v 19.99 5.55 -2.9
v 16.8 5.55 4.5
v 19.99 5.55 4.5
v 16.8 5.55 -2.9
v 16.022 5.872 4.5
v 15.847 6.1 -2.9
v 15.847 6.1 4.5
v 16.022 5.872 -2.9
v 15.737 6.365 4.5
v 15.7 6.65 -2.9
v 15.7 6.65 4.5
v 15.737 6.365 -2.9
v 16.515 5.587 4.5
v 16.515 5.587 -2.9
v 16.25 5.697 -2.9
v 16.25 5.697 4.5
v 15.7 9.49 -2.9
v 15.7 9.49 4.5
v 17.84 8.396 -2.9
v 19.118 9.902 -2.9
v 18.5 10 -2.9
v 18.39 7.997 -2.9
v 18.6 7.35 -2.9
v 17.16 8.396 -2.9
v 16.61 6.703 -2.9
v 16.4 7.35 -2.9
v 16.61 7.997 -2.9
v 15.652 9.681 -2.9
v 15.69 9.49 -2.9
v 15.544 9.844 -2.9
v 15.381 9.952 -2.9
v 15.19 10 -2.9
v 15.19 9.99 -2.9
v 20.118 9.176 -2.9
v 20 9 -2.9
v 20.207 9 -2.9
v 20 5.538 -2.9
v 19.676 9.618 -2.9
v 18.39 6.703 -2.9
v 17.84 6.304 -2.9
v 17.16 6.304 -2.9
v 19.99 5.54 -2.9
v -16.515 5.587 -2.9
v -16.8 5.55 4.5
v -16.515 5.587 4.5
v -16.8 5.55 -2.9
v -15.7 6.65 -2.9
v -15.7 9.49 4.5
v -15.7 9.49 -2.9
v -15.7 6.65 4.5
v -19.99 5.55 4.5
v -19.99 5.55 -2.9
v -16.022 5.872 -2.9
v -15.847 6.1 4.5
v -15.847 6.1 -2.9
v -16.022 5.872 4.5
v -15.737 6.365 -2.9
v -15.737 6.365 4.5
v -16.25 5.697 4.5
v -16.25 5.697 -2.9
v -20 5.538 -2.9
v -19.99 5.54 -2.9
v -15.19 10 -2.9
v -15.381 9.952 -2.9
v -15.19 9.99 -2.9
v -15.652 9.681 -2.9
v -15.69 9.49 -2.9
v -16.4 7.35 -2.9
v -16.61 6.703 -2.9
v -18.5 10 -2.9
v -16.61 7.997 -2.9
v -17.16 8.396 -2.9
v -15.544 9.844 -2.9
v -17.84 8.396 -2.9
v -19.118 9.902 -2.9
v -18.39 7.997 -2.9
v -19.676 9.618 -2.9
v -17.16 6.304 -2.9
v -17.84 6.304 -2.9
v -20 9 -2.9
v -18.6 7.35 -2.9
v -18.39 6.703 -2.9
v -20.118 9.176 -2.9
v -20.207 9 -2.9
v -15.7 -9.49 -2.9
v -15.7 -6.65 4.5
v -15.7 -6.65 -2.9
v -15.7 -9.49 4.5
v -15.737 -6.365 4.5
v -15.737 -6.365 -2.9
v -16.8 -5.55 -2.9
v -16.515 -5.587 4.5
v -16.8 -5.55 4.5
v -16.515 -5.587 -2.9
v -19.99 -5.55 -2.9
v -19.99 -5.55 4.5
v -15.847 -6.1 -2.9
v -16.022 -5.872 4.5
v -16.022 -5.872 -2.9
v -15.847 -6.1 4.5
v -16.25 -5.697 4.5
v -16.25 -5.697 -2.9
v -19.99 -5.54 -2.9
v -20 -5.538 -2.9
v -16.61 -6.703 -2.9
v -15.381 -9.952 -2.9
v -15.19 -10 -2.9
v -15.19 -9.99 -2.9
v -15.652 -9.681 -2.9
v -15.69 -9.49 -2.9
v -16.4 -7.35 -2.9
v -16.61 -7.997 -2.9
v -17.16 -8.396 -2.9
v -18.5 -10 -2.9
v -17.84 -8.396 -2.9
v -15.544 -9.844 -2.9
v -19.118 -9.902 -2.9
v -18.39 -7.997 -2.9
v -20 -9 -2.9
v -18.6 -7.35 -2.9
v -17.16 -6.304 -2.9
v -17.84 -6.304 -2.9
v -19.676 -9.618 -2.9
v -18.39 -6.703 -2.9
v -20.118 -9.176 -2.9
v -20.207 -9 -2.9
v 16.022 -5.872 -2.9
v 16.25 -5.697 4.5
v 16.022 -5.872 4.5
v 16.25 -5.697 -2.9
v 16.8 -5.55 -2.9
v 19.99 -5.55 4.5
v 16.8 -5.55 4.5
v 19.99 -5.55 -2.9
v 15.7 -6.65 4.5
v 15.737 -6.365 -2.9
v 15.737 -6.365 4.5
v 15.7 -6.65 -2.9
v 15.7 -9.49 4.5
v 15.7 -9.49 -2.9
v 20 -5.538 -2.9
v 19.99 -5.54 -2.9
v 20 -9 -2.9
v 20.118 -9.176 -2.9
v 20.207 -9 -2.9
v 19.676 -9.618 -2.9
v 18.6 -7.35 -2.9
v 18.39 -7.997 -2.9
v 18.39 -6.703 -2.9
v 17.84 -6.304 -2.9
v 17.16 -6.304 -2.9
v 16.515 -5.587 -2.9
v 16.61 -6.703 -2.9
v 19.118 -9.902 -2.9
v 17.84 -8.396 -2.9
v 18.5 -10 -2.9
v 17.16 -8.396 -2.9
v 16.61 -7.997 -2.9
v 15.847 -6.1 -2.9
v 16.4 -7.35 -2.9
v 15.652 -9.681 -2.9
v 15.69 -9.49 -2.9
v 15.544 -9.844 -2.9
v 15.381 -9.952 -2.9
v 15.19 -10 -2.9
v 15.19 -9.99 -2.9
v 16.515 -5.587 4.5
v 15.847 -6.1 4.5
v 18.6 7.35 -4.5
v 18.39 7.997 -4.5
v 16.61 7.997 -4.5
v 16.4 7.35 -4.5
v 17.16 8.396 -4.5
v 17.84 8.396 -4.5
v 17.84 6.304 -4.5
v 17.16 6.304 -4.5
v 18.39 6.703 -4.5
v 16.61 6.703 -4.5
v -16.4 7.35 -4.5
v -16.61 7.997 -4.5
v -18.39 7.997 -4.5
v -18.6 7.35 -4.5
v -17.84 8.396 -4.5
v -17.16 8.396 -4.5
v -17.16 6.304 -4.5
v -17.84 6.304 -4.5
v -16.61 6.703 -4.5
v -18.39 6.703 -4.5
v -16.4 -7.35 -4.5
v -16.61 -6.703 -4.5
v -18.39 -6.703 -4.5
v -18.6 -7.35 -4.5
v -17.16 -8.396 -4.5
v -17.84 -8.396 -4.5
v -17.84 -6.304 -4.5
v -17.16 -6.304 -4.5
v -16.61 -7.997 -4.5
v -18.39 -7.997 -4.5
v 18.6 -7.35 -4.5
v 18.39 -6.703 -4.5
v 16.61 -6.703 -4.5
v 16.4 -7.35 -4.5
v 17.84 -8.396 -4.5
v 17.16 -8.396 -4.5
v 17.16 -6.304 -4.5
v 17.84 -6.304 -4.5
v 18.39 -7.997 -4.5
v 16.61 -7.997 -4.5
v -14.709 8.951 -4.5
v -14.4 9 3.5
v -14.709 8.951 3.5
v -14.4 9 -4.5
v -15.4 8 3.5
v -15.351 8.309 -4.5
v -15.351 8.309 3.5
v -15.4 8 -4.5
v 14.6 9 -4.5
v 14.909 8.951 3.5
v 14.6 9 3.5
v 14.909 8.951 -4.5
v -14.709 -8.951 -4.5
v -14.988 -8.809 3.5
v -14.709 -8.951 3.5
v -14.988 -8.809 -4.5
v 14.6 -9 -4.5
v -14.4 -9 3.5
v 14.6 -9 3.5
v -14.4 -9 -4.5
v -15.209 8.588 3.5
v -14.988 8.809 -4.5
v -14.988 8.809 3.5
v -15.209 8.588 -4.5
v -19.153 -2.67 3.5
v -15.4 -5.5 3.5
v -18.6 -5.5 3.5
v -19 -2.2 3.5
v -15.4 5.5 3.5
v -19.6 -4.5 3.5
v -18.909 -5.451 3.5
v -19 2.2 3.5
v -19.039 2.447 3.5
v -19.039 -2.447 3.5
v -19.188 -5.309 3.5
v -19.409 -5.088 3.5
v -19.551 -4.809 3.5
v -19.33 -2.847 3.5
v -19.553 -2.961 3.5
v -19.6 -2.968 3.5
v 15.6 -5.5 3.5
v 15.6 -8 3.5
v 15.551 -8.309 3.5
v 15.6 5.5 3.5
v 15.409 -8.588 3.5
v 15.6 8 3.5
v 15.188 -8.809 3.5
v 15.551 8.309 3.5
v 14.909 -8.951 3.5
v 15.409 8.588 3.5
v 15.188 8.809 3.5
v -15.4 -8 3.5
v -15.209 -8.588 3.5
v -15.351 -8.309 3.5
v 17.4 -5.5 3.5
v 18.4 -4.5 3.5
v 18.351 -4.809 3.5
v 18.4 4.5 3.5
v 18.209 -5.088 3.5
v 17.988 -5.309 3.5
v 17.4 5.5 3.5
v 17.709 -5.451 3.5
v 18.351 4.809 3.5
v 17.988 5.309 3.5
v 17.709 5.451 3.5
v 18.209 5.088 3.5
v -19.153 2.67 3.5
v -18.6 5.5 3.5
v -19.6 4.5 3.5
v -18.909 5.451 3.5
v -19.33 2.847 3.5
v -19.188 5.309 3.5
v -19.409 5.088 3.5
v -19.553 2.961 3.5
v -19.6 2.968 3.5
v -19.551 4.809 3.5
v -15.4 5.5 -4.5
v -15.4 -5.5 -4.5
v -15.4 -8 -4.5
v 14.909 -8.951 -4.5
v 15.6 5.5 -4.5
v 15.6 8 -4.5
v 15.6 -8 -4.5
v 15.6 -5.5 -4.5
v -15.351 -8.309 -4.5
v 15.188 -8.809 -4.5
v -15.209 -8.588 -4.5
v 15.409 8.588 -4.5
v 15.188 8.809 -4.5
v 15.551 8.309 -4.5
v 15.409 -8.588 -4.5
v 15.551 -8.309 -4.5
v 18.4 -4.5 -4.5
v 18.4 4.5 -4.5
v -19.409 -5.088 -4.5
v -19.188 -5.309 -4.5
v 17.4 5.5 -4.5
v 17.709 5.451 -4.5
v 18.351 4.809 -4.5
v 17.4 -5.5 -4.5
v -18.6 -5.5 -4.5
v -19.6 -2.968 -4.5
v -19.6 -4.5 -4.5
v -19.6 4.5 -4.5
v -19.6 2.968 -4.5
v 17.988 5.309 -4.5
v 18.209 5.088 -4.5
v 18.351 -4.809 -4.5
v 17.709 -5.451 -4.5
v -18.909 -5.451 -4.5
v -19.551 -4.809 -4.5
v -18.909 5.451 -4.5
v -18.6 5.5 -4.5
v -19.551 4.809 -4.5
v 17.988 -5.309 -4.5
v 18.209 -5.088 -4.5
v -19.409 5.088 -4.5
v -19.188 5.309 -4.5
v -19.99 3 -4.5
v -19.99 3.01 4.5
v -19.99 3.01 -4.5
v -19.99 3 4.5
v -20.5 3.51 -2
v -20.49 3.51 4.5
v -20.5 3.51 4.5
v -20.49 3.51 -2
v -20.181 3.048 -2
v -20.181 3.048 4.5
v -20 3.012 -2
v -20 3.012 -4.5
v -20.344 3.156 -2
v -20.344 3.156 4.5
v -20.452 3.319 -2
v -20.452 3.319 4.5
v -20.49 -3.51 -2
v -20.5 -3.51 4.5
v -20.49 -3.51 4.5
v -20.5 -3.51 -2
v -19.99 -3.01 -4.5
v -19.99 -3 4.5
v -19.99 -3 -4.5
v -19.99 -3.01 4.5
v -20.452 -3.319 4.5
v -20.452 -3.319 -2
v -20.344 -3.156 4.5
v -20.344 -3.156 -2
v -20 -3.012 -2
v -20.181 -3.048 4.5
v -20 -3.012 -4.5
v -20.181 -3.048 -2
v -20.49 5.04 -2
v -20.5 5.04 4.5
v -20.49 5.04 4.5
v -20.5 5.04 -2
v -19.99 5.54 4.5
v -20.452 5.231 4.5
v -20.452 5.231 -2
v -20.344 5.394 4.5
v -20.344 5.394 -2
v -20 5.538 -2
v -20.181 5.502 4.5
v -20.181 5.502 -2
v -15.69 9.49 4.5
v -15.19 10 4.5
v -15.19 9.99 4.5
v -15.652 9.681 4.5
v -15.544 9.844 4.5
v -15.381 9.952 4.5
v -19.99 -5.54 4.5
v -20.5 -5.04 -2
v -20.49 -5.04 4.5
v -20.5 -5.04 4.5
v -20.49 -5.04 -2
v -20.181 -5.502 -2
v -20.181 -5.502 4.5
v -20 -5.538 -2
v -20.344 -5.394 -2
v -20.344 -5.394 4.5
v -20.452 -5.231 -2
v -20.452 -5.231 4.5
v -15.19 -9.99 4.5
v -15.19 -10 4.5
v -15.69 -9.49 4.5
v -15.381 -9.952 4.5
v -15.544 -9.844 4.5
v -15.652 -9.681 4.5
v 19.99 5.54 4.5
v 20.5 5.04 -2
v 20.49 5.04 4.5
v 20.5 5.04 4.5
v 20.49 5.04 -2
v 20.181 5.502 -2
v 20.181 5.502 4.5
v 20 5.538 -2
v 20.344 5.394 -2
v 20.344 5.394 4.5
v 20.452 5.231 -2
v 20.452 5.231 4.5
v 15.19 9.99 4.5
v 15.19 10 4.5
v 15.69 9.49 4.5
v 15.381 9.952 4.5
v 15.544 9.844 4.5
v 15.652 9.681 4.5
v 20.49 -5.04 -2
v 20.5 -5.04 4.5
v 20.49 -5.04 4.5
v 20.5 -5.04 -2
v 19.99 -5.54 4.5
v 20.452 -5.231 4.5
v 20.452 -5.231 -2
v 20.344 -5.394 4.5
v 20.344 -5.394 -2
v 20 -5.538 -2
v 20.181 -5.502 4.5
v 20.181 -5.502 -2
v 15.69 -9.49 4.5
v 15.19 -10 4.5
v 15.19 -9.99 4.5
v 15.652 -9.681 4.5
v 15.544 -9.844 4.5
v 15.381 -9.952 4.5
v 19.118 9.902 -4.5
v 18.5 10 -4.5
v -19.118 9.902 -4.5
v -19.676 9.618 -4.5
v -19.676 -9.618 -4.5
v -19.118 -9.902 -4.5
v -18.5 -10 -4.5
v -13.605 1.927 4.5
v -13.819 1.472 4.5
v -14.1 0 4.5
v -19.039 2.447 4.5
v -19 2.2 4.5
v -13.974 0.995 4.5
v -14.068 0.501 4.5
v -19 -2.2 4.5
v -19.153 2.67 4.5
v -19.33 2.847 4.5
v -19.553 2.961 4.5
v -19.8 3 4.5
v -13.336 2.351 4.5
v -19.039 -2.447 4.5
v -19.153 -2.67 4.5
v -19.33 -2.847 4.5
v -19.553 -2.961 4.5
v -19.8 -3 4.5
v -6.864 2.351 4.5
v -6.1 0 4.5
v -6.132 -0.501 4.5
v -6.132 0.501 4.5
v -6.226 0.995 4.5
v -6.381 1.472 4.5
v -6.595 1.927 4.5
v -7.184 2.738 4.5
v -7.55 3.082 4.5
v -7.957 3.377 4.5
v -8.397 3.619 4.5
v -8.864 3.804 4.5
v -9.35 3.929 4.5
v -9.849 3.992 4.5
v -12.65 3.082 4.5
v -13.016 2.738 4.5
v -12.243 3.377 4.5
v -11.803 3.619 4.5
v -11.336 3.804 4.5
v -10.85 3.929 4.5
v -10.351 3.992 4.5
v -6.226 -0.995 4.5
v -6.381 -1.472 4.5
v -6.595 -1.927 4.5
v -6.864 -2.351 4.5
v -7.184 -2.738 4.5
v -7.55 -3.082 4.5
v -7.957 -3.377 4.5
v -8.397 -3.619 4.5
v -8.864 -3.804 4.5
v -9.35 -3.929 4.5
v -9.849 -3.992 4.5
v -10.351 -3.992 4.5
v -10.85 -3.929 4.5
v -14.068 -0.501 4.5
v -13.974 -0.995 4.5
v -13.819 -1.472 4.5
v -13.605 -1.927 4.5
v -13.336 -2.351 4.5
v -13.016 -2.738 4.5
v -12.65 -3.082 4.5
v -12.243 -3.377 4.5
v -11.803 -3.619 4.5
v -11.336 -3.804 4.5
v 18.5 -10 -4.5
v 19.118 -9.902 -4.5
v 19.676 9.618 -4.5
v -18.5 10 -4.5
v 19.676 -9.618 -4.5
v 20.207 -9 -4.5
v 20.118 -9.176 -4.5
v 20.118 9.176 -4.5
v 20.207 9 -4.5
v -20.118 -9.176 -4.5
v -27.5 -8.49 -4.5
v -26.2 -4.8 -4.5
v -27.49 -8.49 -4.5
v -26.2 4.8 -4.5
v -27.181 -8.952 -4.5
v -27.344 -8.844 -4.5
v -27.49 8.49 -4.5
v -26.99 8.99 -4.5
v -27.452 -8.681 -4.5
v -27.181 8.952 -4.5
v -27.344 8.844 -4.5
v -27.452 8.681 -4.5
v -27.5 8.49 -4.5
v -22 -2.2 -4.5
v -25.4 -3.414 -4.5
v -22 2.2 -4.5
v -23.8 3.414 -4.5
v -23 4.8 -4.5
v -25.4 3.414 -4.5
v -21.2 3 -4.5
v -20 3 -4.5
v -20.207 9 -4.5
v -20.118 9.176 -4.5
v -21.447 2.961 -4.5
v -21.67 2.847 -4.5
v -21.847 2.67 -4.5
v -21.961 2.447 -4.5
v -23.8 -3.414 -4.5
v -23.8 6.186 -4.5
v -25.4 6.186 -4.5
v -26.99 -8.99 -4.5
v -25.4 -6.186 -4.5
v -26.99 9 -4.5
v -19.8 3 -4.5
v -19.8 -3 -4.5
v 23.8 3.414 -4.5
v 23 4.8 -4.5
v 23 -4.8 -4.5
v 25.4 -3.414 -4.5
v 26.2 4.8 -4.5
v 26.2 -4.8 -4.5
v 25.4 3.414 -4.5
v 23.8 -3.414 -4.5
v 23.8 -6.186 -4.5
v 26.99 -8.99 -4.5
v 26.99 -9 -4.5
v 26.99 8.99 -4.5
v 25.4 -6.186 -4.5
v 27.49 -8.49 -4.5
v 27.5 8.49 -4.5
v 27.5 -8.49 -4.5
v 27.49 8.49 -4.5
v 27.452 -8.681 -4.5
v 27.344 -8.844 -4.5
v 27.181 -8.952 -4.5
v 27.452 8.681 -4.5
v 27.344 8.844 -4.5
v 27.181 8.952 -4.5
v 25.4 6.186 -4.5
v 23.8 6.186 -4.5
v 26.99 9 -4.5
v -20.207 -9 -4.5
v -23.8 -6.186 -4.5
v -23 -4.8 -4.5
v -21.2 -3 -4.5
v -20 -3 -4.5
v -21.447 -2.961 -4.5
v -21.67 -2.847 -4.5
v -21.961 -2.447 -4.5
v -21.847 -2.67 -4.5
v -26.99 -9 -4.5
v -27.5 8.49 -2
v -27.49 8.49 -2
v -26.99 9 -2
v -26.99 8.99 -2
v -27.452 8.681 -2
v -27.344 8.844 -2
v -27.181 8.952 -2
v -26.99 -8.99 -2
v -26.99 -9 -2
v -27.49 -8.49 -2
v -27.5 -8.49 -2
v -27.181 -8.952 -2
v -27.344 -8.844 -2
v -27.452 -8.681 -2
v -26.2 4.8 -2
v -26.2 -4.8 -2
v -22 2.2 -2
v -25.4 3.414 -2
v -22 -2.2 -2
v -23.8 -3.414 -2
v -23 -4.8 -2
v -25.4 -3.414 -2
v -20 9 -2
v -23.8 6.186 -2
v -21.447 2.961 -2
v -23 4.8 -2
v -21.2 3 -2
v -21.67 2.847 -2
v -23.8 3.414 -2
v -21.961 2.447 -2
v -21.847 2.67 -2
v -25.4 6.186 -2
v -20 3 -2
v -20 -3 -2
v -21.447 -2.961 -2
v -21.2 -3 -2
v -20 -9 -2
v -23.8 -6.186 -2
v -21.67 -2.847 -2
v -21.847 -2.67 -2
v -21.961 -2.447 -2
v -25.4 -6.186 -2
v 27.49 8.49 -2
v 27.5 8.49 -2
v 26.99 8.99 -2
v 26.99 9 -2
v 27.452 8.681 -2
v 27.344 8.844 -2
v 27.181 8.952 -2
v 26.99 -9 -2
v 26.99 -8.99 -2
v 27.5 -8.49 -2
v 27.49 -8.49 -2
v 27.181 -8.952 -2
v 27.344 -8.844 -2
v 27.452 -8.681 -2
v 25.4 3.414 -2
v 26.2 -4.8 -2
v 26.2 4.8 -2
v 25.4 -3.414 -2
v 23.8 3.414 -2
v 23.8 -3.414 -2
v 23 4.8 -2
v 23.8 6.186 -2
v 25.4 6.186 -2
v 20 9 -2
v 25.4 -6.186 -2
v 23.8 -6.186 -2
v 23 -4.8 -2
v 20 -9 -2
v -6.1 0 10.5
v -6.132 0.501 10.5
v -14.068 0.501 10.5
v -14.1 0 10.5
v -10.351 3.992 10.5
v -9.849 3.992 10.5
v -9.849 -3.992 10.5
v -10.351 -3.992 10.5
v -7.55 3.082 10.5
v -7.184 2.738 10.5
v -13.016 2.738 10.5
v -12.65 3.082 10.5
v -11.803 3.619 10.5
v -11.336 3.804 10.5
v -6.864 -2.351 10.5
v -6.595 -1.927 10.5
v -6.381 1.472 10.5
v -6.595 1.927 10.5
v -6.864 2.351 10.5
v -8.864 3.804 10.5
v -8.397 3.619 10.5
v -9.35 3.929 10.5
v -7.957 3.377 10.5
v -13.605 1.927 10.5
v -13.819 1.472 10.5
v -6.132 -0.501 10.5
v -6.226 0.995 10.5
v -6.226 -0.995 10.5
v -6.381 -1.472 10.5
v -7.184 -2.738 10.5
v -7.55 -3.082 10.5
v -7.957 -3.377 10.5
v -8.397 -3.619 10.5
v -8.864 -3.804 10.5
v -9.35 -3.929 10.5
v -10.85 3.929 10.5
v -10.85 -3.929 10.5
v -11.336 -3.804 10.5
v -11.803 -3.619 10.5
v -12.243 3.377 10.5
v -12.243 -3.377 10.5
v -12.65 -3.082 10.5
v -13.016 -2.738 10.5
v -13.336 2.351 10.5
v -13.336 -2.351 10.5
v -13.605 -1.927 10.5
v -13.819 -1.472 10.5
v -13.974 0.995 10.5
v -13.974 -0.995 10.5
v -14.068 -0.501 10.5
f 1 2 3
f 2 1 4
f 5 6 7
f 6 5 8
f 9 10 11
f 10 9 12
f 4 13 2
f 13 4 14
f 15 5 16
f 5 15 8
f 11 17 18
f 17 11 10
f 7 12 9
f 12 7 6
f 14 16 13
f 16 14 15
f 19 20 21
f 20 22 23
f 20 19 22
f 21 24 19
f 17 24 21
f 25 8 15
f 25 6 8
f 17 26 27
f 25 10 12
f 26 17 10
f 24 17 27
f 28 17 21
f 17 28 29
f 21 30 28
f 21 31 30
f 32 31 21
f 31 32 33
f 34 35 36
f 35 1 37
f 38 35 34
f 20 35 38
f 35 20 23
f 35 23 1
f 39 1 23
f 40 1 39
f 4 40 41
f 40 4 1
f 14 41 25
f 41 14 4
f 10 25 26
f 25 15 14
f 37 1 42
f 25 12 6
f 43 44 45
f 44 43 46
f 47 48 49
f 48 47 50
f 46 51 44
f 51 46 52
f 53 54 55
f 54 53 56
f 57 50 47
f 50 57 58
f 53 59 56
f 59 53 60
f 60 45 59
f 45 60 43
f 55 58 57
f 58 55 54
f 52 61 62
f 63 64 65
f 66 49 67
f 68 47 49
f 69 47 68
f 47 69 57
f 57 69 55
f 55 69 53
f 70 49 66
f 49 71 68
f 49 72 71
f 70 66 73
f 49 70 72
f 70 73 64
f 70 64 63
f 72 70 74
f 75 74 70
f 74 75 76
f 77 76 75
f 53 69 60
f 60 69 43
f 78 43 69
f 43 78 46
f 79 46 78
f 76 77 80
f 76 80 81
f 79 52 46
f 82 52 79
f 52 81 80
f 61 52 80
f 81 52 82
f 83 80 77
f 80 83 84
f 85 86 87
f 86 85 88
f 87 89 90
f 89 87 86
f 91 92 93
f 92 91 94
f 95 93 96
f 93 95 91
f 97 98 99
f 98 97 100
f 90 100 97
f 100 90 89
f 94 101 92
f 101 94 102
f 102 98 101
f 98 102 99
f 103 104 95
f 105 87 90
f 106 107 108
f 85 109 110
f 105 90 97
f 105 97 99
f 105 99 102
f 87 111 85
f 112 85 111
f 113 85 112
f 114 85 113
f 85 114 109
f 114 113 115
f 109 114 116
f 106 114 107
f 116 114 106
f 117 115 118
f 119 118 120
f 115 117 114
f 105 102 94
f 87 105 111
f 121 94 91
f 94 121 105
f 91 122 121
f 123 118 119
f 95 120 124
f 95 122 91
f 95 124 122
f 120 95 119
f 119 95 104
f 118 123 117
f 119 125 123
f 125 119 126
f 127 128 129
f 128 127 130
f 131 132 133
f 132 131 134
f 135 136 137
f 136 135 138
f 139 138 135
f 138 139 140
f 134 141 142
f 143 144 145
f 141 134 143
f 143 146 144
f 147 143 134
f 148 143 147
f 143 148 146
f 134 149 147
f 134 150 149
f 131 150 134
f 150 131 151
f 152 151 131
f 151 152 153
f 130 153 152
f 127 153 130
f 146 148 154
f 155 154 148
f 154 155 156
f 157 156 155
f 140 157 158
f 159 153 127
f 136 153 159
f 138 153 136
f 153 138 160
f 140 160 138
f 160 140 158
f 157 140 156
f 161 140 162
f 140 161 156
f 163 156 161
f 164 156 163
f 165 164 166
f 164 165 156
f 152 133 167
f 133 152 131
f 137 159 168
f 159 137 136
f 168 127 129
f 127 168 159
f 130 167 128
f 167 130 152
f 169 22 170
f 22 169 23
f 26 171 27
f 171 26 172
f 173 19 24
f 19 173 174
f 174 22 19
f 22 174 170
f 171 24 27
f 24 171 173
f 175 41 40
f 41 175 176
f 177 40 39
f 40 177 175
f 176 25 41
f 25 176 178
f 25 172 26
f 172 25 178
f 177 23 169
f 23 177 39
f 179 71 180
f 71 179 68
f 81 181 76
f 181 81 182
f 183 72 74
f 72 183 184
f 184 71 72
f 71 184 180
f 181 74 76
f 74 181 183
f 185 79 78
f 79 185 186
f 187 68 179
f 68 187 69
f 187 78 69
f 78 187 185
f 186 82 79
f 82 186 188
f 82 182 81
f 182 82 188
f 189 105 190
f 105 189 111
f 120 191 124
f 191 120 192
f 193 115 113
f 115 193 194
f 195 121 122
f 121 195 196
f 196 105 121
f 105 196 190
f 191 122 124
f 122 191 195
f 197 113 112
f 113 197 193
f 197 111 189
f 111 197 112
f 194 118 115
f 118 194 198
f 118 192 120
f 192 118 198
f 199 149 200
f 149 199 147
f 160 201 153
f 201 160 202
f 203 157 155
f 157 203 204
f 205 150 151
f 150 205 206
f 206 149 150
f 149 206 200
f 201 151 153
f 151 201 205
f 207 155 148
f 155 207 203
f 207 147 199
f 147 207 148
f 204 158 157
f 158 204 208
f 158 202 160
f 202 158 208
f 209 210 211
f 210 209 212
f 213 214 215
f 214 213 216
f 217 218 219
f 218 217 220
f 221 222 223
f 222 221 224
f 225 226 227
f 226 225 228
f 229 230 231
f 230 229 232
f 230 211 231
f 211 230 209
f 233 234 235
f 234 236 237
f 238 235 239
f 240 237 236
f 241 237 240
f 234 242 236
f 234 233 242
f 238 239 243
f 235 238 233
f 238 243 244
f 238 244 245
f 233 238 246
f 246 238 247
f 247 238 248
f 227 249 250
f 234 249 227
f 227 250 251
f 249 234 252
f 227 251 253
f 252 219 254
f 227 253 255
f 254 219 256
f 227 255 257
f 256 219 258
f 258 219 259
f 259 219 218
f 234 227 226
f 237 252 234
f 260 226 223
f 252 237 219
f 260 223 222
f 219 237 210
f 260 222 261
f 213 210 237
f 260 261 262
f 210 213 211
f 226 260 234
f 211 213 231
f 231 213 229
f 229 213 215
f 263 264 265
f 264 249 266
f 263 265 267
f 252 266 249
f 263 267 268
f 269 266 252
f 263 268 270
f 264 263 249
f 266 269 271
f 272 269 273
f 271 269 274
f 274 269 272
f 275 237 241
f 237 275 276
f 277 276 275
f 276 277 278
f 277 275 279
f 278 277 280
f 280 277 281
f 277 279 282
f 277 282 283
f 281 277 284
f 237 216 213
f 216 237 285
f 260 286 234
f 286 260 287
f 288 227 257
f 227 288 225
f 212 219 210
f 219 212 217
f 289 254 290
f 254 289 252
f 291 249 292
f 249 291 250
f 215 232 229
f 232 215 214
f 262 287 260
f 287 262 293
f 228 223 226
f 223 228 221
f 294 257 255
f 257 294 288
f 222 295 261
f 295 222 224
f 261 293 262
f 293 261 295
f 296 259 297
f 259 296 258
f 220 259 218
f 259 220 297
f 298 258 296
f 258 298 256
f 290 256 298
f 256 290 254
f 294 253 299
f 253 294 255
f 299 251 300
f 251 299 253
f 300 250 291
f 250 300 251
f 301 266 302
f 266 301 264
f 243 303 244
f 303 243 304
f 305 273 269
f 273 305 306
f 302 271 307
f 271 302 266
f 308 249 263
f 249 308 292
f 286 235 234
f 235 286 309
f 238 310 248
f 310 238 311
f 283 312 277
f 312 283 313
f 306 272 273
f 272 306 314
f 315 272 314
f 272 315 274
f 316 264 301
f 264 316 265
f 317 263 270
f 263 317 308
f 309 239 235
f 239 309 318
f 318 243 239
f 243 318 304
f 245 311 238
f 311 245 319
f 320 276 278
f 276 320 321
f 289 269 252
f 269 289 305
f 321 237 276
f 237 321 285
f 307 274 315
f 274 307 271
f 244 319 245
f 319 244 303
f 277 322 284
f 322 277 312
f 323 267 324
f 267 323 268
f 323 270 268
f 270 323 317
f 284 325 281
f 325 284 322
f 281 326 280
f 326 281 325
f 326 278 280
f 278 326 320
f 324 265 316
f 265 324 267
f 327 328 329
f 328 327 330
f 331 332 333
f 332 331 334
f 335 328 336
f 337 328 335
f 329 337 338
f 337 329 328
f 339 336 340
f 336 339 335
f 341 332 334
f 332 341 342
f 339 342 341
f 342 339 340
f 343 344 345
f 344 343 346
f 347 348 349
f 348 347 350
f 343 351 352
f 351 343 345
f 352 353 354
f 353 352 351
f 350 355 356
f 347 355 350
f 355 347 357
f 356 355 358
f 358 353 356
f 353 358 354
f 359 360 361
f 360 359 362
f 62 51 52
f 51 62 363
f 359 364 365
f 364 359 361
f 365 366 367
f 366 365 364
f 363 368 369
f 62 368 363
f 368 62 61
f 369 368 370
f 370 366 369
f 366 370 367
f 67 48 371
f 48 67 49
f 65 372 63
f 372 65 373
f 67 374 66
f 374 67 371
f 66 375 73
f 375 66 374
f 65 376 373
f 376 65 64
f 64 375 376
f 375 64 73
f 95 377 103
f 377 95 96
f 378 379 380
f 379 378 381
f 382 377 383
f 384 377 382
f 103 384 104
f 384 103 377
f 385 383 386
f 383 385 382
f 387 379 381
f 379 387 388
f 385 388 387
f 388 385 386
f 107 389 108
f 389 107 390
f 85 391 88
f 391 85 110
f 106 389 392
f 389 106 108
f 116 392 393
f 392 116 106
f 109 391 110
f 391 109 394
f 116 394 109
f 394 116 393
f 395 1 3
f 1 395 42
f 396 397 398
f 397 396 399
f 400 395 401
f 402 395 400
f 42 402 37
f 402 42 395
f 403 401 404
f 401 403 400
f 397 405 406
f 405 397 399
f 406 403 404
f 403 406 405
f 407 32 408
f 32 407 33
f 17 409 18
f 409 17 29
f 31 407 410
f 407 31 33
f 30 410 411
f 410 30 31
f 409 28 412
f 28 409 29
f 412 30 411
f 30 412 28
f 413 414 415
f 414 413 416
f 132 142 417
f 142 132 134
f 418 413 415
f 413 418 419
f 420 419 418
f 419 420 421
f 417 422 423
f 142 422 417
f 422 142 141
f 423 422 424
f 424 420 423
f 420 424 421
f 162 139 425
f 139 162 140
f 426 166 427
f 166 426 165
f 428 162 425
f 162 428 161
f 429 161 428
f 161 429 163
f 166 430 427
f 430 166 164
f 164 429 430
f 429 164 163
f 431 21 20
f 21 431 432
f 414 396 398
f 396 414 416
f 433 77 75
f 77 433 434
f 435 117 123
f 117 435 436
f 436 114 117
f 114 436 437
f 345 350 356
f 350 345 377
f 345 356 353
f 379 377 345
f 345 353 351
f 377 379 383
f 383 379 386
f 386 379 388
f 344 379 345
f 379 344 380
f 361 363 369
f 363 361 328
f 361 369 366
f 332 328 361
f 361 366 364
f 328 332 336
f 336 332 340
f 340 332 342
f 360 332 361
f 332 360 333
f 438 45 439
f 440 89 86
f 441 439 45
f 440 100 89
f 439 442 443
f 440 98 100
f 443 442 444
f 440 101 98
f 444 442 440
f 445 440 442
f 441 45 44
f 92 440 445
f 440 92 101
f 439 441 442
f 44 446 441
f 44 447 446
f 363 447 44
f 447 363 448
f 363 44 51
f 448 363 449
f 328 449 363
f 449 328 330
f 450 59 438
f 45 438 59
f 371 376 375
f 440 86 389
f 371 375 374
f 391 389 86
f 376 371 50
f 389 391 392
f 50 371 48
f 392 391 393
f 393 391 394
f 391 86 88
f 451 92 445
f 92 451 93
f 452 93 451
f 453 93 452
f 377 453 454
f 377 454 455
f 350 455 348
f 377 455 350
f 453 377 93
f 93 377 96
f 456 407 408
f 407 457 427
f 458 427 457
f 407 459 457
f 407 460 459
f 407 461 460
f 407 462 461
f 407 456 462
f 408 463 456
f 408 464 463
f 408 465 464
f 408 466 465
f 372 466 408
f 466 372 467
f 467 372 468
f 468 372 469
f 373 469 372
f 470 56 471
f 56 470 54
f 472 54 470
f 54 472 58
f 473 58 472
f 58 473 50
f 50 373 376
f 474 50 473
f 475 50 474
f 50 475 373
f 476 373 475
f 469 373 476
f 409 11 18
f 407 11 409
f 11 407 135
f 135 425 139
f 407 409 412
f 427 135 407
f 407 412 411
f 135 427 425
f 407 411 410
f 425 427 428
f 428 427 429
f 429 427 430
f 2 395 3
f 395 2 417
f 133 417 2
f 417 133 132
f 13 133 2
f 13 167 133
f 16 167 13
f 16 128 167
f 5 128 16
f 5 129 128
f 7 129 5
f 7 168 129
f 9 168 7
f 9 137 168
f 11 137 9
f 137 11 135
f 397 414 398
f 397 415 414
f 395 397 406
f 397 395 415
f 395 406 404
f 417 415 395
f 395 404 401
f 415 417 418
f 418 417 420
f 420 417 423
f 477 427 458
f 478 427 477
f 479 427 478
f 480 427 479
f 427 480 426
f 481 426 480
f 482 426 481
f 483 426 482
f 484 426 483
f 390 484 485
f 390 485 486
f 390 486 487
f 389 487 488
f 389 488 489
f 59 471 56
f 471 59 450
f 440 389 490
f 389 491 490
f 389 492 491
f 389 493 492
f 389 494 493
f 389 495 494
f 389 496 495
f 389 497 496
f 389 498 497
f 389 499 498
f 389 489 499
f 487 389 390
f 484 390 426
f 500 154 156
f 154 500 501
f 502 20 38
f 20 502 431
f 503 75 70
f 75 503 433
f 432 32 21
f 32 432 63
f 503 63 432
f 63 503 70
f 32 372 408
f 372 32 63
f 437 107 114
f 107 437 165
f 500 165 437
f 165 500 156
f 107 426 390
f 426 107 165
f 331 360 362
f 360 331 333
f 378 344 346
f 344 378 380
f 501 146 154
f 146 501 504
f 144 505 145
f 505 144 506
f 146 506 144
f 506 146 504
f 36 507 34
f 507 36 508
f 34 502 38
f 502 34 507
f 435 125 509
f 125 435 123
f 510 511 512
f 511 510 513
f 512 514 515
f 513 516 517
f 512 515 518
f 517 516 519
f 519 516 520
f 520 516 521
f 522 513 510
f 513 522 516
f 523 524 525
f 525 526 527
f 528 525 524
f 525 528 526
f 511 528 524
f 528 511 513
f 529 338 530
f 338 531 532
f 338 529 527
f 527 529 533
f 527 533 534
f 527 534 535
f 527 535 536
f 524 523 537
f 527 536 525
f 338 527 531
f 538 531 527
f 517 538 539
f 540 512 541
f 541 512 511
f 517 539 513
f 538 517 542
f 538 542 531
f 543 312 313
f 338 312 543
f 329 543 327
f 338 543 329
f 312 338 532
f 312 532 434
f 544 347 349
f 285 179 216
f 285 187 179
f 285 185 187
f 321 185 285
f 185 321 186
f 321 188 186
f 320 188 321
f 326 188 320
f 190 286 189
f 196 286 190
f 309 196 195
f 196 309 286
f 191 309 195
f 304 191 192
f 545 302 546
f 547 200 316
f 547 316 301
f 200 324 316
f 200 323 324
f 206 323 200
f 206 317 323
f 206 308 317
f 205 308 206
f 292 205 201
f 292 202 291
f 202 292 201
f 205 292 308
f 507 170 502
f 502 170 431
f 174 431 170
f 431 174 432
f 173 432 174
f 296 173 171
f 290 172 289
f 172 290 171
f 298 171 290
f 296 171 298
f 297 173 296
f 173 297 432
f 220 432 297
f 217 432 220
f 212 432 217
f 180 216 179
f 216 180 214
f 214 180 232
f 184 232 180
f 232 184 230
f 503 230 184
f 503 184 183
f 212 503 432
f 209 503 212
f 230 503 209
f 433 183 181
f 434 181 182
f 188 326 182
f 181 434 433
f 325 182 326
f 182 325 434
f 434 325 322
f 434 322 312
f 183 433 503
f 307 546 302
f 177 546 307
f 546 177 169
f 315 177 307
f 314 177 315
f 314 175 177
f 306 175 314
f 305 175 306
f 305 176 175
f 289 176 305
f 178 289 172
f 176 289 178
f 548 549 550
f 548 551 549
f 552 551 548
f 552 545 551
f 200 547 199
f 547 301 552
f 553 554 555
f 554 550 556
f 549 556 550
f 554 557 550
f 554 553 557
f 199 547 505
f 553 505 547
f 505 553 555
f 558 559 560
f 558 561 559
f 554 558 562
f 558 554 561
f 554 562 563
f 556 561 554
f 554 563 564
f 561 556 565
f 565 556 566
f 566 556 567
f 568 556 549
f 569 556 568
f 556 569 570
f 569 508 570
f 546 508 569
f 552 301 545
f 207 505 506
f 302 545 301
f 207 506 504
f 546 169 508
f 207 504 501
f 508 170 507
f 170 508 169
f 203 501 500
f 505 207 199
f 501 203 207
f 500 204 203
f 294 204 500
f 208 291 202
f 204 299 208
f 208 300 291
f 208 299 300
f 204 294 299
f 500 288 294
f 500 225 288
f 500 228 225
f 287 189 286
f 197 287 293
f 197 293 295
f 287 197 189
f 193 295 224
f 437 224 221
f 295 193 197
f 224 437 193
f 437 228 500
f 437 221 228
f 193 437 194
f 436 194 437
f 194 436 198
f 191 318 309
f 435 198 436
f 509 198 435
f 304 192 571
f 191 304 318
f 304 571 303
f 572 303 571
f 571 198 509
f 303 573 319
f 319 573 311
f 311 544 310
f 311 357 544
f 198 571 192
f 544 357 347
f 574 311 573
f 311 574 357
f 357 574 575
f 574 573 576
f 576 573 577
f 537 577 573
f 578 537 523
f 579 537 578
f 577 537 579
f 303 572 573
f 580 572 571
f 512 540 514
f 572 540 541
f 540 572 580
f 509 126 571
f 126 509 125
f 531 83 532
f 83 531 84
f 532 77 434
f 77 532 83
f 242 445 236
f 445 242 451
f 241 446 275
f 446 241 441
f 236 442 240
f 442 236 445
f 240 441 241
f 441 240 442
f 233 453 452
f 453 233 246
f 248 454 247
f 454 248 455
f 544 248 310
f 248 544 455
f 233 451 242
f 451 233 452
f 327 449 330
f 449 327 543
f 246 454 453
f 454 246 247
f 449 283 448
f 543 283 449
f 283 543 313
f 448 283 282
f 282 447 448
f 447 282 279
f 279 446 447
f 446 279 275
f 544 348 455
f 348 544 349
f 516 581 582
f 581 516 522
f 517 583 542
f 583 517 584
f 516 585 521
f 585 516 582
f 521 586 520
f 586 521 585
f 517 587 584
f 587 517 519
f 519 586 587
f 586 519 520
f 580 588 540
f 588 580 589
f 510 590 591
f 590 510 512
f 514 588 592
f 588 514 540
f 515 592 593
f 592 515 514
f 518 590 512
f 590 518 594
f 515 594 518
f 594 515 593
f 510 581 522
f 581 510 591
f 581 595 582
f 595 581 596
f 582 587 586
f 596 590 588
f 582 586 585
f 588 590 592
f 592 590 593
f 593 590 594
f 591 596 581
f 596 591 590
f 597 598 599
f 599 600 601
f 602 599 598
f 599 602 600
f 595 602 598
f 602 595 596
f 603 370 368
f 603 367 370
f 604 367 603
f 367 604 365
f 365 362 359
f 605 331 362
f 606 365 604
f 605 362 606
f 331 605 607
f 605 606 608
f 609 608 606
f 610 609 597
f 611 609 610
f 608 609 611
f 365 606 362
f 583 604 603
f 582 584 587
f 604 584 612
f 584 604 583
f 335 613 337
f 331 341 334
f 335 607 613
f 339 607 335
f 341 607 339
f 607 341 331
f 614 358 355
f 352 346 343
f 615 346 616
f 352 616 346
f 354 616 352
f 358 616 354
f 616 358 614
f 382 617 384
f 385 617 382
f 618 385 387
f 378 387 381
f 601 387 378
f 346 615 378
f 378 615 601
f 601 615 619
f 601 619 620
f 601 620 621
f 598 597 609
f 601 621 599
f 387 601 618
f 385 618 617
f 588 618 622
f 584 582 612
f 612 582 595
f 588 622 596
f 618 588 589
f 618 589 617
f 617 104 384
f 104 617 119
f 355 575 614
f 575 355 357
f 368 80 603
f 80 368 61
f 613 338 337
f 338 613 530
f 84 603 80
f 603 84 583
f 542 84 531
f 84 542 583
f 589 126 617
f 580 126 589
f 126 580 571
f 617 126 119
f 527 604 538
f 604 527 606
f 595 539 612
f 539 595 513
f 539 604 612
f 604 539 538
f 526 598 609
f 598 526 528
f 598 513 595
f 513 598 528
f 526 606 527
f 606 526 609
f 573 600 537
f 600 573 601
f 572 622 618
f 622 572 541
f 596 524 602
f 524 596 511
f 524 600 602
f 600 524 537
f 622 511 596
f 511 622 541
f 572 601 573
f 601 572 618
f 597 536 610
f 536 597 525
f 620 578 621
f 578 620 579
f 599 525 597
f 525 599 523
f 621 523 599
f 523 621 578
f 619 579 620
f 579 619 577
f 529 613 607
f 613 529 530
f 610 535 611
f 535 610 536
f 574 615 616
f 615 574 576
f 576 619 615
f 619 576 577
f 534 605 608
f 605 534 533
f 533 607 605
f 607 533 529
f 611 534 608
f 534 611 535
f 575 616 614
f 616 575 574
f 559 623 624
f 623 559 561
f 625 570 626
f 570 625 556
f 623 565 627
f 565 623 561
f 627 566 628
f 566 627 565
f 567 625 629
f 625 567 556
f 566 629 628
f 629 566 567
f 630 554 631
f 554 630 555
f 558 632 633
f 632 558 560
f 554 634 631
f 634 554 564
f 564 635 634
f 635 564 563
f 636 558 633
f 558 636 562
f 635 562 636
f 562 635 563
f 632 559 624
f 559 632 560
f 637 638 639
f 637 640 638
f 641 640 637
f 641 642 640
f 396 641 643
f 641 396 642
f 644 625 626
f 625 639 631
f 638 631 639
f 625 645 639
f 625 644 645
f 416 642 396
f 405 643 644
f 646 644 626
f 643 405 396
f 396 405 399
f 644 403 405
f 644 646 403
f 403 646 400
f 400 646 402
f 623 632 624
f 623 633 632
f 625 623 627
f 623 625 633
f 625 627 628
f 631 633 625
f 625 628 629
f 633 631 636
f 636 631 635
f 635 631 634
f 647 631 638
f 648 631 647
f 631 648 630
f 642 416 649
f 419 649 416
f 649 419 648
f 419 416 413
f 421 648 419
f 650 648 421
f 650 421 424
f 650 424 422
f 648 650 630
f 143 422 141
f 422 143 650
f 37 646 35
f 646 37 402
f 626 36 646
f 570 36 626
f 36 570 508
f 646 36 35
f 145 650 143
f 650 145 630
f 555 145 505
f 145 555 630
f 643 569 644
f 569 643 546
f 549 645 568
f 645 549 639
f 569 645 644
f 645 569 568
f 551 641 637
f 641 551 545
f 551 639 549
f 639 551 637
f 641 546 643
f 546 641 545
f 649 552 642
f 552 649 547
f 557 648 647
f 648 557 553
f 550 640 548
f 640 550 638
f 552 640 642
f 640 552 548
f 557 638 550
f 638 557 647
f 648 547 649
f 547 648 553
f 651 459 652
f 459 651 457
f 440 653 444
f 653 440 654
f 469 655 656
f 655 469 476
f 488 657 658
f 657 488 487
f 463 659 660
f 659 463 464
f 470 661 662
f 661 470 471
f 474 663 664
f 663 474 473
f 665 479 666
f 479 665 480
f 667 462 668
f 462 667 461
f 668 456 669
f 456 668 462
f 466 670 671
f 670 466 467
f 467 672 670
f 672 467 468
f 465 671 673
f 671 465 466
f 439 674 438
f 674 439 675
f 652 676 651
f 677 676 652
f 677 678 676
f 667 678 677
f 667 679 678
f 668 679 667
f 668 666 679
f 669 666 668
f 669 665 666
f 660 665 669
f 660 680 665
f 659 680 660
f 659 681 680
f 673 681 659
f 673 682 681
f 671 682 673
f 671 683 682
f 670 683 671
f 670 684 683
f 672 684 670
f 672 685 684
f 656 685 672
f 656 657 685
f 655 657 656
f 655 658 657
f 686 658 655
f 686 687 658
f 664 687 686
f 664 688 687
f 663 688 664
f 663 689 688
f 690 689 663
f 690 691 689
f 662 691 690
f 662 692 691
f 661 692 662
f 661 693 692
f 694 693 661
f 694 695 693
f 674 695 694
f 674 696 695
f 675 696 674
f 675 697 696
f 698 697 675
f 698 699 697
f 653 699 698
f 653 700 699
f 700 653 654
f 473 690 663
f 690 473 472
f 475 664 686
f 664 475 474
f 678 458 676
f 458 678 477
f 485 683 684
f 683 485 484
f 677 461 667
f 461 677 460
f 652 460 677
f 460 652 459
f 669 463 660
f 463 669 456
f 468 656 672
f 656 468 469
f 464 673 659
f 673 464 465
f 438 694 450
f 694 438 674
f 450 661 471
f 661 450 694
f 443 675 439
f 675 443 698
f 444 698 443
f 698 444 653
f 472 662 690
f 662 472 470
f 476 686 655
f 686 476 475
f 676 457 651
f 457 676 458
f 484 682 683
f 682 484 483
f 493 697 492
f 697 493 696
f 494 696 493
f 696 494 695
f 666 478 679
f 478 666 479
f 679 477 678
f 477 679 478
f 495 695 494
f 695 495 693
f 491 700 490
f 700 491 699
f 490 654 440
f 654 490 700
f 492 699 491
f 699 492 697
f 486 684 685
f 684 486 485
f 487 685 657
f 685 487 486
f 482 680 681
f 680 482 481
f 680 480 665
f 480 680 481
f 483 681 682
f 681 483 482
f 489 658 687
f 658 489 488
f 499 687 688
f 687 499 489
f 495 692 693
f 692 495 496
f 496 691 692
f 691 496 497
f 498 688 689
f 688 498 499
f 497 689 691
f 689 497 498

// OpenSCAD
// file: obiscad/attach.scad
//---------------------------------------------------------------
//-- Openscad Attachment library
//-- Attach parts easily. Make your designs more reusable and clean
//---------------------------------------------------------------
//-- This is a component of the obiscad opescad tools by Obijuan
//-- (C) Juan Gonzalez-Gomez (Obijuan)
//-- Sep-2012
//---------------------------------------------------------------
//-- Released under the GPL license
//---------------------------------------------------------------

use <vector.scad>

//--------------------------------------------------------------------
//-- Draw a connector
//-- A connector is defined a 3-tuple that consist of a point
//--- (the attachment point), and axis (the attachment axis) and
//--- an angle the connected part should be rotate around the 
//--  attachment axis
//--
//--- Input parameters:
//--
//--  Connector c = [p , n, ang] where:
//--
//--     p : The attachment point
//--     v : The attachment axis
//--   ang : the angle
//--------------------------------------------------------------------
module connector(c)
{
  //-- Get the three components from the connector
  p = c[0];
  v = c[1];
  ang = c[2];

  //-- Draw the attachment poing
  color("Gray") point(p);

  //-- Draw the attachment axis vector (with a mark)
  translate(p)
    rotate(a=ang, v=v)
    color("Gray") vector(unitv(v)*6, l_arrow=2, mark=true);
}


//-------------------------------------------------------------------------
//--  ATTACH OPERATOR
//--  This operator applies the necesary transformations to the 
//--  child (attachable part) so that it is attached to the main part
//--  
//--  Parameters
//--    a -> Connector of the main part
//--    b -> Connector of the attachable part
//-------------------------------------------------------------------------
module attach(a,b)
{
  //-- Get the data from the connectors
  pos1 = a[0];  //-- Attachment point. Main part
  v    = a[1];  //-- Attachment axis. Main part
  roll = a[2];  //-- Rolling angle
  
  pos2 = b[0];  //-- Attachment point. Attachable part
  vref = b[1];  //-- Atachment axis. Attachable part
                //-- The rolling angle of the attachable part is not used

  //-------- Calculations for the "orientate operator"------
  //-- Calculate the rotation axis
  raxis = cross(vref,v);
    
  //-- Calculate the angle between the vectors
  ang = anglev(vref,v);
  //--------------------------------------------------------.-

  //-- Apply the transformations to the child ---------------------------

  //-- Place the attachable part on the main part attachment point
  translate(pos1)
    //-- Orientate operator. Apply the orientation so that
    //-- both attachment axis are paralell. Also apply the roll angle
    rotate(a=roll, v=v)  rotate(a=ang, v=raxis)
      //-- Attachable part to the origin
      translate(-pos2)
	children(0); 
}


//--------------------------------------------------------------------
//---   An example of the attach operator
//---  
//---  There are two parts: the main body and an arm
//---  They both are cubes (for simplicity)
//---
//--   In the main body there are 2 connectors defined, so that
//--  the arm can be attached to any of them (or both if you like)
//------------------------------------------------------------------

//-- In the debug mode the connectors and additional information
//-- are shown
debug=true;

//-- Define the Main part: A cube
//-- Two attachment points are defined: one on the top, another in the
//--- left side
size = [10,10,10];

//-- Connectors defined:

//--     Att. point       Att. Axis  Roll
c1 = [ [0,0,size[2]/2],  [0,0,1],     20];  //-- Connector on the top
c2 = [ [-size[0]/2,0,0], [-1,0,0],    90];  //-- Connector on the left


//-- Draw the main part along with the connectors (for debugging)
cube(size,center=true);

//-- In debug mode: Draw the main part connectors!
if (debug) {
  connector(c1);
  connector(c2);
}

//-- Define the Attachable part. It is another cube, with one connector
asize = [5,20,3];
a = [ [0,asize[1]/2-3,-asize[2]/2], [0,0,1], 0  ];


//-- Do the attach!
//-- Just change c1 by c2 to attach the part to the other 
//-- connector. Super-easy!! :-)
//-- Modify the c1 and c2 roll angle for rotating the attachable
//--  part to the desired orientation
attach(c1,a)
  //-- This is the attachable part! 
  union() {
    cube(asize,center=true);  //-- The part

    //-- In debug mode show additional info:
    if (debug) {
      frame(l=10);    //-- The part frame of reference.
      connector(a);   //-- Show the part connector
    }
  };

  
// file: obiscad/bcube.scad
//------------------------------------------------------------------------------
//  Bevel edge cube.
//  (c) Juan Gonzalez-Gomez (Obijuan), Sep-2012
//------------------------------------------------------------------------------

//----------------- IMPLEMENTATION USING THE MINKOWSKI OPERATOR ----------------

//------------------------------------------------------------------------------
//-- Bevel Cube main function
//-- Parameters:
//--   * Size:  Cube size
//--   * cr : Corner radius (if cr==0, a standar cube is built)
//--   * cres:  Corner resolution (in points). cres=0 means flat corners
//------------------------------------------------------------------------------
module bcube(size,cr=0,cres=0)
{
  //-- Internal cube size
  bsize = size - 2*[cr,cr,0];

  //-- Get the (x,y) coorner coordinates in the 1st cuadrant
  x = bsize[0]/2;
  y = bsize[1]/2;

  //-- A corner radius of 0 means a standar cube!
  if (cr==0)
    cube(bsize,center=true);
  else {

      
      //-- The height of minkowski object is double. So
      //-- we sould scale by 0.5
      scale([1,1,0.5])

      //-- This translation is for centering the minkowski objet
      translate([-x, -y,0])

      //-- Built the  beveled cube with minkowski
      minkowski() {

        //-- Internal cube
        cube(bsize,center=true);

        //-- Cylinder in the corner (1st cuadrant)
        translate([x,y, 0])
          cylinder(r=cr, h=bsize[2],center=true, $fn=4*(cres+1));
      }
  }

}


//-- Examples of use of the bcube() module

//-- Standar cube
translate([-15,15,0])
bcube([20,20,10]);

//-- Beveled cube (0 point resolution)
translate([15,15,0])
  bcube([20,20,10],cr=4);

//-- Beveled cube (1 point resolution)
translate([-15,-15,0])
  bcube([20,20,10],cr=4, cres=1);

//-- Beveled cube (4 points resolution)
translate([15,-15,0])
  bcube([20,20,10],cr=4, cres=4);
// file: obiscad/utils.scad
//---------------------------------------------------------------
//-- Utils. General utilities...
//-- This is a component of the obiscad opescad tools by Obijuan
//-- (C) Juan Gonzalez-Gomez (Obijuan)
//-- Sep-2012
//---------------------------------------------------------------
//-- Released under the GPL license
//---------------------------------------------------------------

//-----------------------------------------------------
//-- Functions for converting a scalar into a vector:
//-----------------------------------------------------
//-- The scalar is interpreted as the x coordinate
function VX(x) = [x,0,0];

//-- The scalar is interpreted as the y coordinate
function VY(y) = [0,y,0];

//-- The scalar is interpreted as the z coordinate
function VZ(z) = [0,0,z];


//-----------------------------------------
//-- Definition for accessing vector componentes easily
//--------------------------------------------------------
X = 0;
Y = 1;
Z = 2;
// main file
//-------------------------------------------------------------------
//-- Servo Lower cover
//-- (c) Juan Gonzalez-Gomez (Obijuan). May-2013
//-------------------------------------------------------------------
//-- The original cover has been design for the Futaba 3003 servos
//-- But, as it is a parameterized design, the user can easily
//-- adapt to other servos
//--
//--  In addition, it is very easy to modify the cover to add a fake
//--- shaft, or in general customize it for improving the design
//--
//--  It is particulary interesting for designing robots. If a fake
//--  shaft is included, the mechanical designs are greatly simplified! 
//-------------------------------------------------------------------
//-- Released under the GPL license. 
//-------------------------------------------------------------------

//---  Obiscad!!
include <obiscad/utils.scad>
use <obiscad/bcube.scad>
use <obiscad/attach.scad>
use <obiscad/bevel.scad>

//-----------------------------------------------------------------------------------
//-- USER AREA. The user should change this parameters depending on the Servo used  
//-- The default values have been calculated for the SERVO FUTABA 3003
//-----------------------------------------------------------------------------------

//-- Fake shaft
fake_shaft = true;   //-- Set to false for removing
fake_shaft_len = 6;  //-- Shaft length
fake_shaft_diam = 8;  //-- Shaft diameter
fake_shaft_xpos = -10.1;  //-- X coordinate of the shaf position



//-------------------------- Main Base --------------------------
bsize = [41, 20, 9];  //-- base size
b_cr=2;               //-- Base corner radius
b_cres=4;             //-- Baser corner resolution


//-- ----------------------- Screw cutouts ----------------------
//-- These are the areas removed from the main base to give
//-- room to the screw heads
screw_lh = 1.6;         //- Screw layer height, Relative to the bottom
screw_head_diam = 3.2;  //-- Screw head diameter
screw_head_clear = 0.2; //-- Space between the screw head and the base


//-------------------------- Drills ------------------------------
ddiam=2.2;  //-- Drills diameter
ddx=35;     //-- Distance in the x axis between the drills
ddy=14.7;   //-- Distance in the y axis between the distance

//-------------------------- Electronic cutouts -------------------
//-- These are removed from the bottom of the base to make room
//-- for the servo electronics
elec_cutout_lh = 8;

//-- dimensions (on xy plane) of the cutouts
elec_cutout_dim = [
[31, 18],   //-- Left cutout
  [38,  11],   //-- Right cutout
];

//-- Distance from the nearer drill (on the x axis)
//-- (not from the drill center, but the nearest drill surface)
//-- (so that it can be meassured easily with a caliper)
elec_cutout_clearx = [
  1, -2
];

elec_co_cr = 1;    //-- Corner radius
elec_co_cres = 4;  //-- Corner resolution

//-------------------------- Cable hole ----------------------------
//-- Cable hole dimensions
cable_hole_dim = [1.5, 6];

ch_cr = 0.8;  //-- Cable hole corner radius
ch_cres = 4;  //-- Cable hole corner resolution

//------------------------ Beveled edges -----------------------------
bevel_cr = 0.5;


//------------------------ Servo ears -----------------------
servo_ears = true;

//-- Estandar futaba ears
ears_size = [7.0, 18, 2.5];


//-- Ears with the same height than the cover
//-- Uncomment if needed
//ears_size = [7.0, 18, bsize[Z]];

ears_drill = 3.2;

//-- Penetration of ear in the cover
ear_pen = 0.5;  

//-- Ear drill coordinates
ear_drill_pos = [4.1, 9.6/2, 0];


//---------------------------------------------------------------------------------
//---        IMPLEMENTATION!!
//---------------------------------------------------------------------------------
//--  The USER should be able to change the base modifying only the above
//--  user parameters
//--
//--  The implementation is divided into 2 stages:
//--
//--  1) DATA calculation: It creates tables and definitions for further
//--     build the base more easily
//--  2) CODE: It just build the Servo Base, based only on the data
//-----------------------------------------------------------------------------------


//---------------------------------------
//-- DATA for the drills
//---------------------------------------
//-- Calculate the drill coordinates from the center of the base
dx=ddx/2;
dy=ddy/2;

//-- Build the drill table, for automating the process of 
//-- making drills
//-- All the drill are symetric respect the x and y axis
drill_table = [
  [dx,   dy, 0],
  [-dx,  dy, 0],
  [-dx, -dy, 0],
  [dx,  -dy, 0],
];


//-------------------------------------------------------------
//-- DATA for the First layer: screw layer
//-------------------------------------------------------------

//-- Extra value. Does not matter the value (but it should be > 0
extra = 5;


//-- Calculate the clear distance from the drill center
clear = screw_head_diam/2 + screw_head_clear;

//-- Calculate the cutout size
scx = bsize[X]/2-drill_table[0][X]+clear+extra;
scy = bsize[Y]/2-drill_table[0][Y]+clear+extra;
screw_cutout_size = [scx,scy, bsize[Z]];

//-- vector for the z position of the cutouts:
//-- They are screw_lh high from the bottom 
sc_z = [0,0, -bsize[Z]/2+screw_lh];


//-- Connector table. It contains the pairs of connectors for performing
//-- the attach operation.
//-- The first connector of the pair belongs to the base, the second to the cutout
//-- The connectors coordinates are relative to the drills
screw_connector_table = [

  //-- First quadrant
  [ [drill_table[0]+[-clear, -clear,0]+sc_z, [0,0,1], 0 ],  //-- First pair of connectors
   [[-screw_cutout_size[X]/2, -screw_cutout_size[Y]/2, -screw_cutout_size[Z]/2],[0,0,1],0]
  ],

  //-- Second quadrant
  [ [drill_table[1]+[clear, -clear,0]+sc_z, [0,0,1], 0 ],
    [[screw_cutout_size[X]/2, -screw_cutout_size[Y]/2, -screw_cutout_size[Z]/2],[0,0,1],0]
  ],

  //-- Third quadrant
  [ [drill_table[2]+[clear, clear,0]+sc_z, [0,0,1], 0 ],
    [[screw_cutout_size[X]/2, screw_cutout_size[Y]/2, -screw_cutout_size[Z]/2],[0,0,1],0]
  ],

  //-- Forth quadrant
  [ [drill_table[3]+[-clear, clear,0]+sc_z, [0,0,1], 0 ],
    [[-screw_cutout_size[X]/2, screw_cutout_size[Y]/2, -screw_cutout_size[Z]/2],[0,0,1],0]
  ],
 
];

//---------------------------------------
//-- DATA for the electronics cutouts
//---------------------------------------

//-- vector for the z position of the cutouts:
//-- They are elec_cutout_lh high from the bottom 
ec_z = [0,0, -bsize[Z]/2+elec_cutout_lh];

//-- Auxiliary table with the cutout size
elec_co_size = [
  [elec_cutout_dim[0][X], elec_cutout_dim[0][Y], bsize[Z]],
  [elec_cutout_dim[1][X], elec_cutout_dim[1][Y], bsize[Z]]
];


//-- Connector table. It contains the pairs of connectors for performing
//-- the attach operation.
//-- The first connector of the pair belongs to the base, the second to the cutout
//-- The connectors coordinates are relative to the drills
elec_connector_table = [

  //-- Connector pair for the Left cutout (relative to the upper-left drill)
  [ [VX(drill_table[1][X]+ddiam/2+elec_cutout_clearx[0])+
     VY(elec_co_size[0][Y]/2)+ ec_z,
     [0,0,1], 0],                        //-- Base connector
     
    [[-elec_co_size[0][X]/2, elec_co_size[0][Y]/2 ,elec_co_size[0][Z]/2],[0,0,1],0]
  ],
 
  //-- connector pair for the right cutout (relative to the upper-right drill)
  [ [VX(drill_table[0][X]-ddiam/2-elec_cutout_clearx[1])+
     VY(elec_co_size[1][Y]/2)+ec_z,
     [0,0,1], 0],

    [[elec_co_size[1][X]/2, elec_co_size[1][Y]/2 ,elec_co_size[1][Z]/2],[0,0,1],0]
  ],

];

//--------------------------------
//-- DATA for the cable hole
//--------------------------------
//-- Calculate the cable hole size
//-- In the x-axis is doble sized
ch_size = [2*cable_hole_dim[X], cable_hole_dim[Y], bsize[Z]+extra];

//-- Connectors pair for attaching a bcube and make the difference
ch_conn_pair = [
  [[-bsize[X]/2,0,0], [0,0,1], 0],
  [[0,0,0], [0,0,1], 0],
];

//---------------------------------------
//-- DATA for beveling some edges
//---------------------------------------

//-- Table of Pair of connectors for beveling
//-- corner connector, normal connect and bevel length
bevel_table = [
  
  //-- cable hole external corners
  //-- Upper
  [ [[-bsize[X]/2, ch_size[Y]/2 ,0], [0 ,0 ,1], 0],
    [[-bsize[X]/2, ch_size[Y]/2 ,0], [-1,-1,0], 0],
    bsize[Z]+extra 
  ],

  //-- Lower
  [ [[-bsize[X]/2, -ch_size[Y]/2 ,0], [0 ,0 ,1], 0],
    [[-bsize[X]/2, -ch_size[Y]/2 ,0], [-1,1,0], 0],
    bsize[Z]+extra 
  ],

  //-- Beveling the Upper-left screw cutout (1) 
  [ [[-bsize[X]/2, drill_table[1][Y]-clear ,bsize[Z]/2], [0 ,0 ,1], 0],
    [[-bsize[X]/2, drill_table[1][Y]-clear ,bsize[Z]/2], [-1,1,0], 0],
    2*(bsize[Z]-screw_lh) 
  ],

  //-- Beveling the Upper-left screw cutout (2) 
  [ [[drill_table[1][X]+clear, bsize[Y]/2 ,bsize[Z]/2], [0 ,0 ,1], 0],
    [[drill_table[1][X]+clear, bsize[Y]/2 ,bsize[Z]/2], [-1,1,0], 0],
    2*(bsize[Z]-screw_lh) 
  ],

   //-- Beveling the lower-left screw cutout (1) 
  [ [[-bsize[X]/2, drill_table[2][Y]+clear ,bsize[Z]/2], [0 ,0 ,1], 0],
    [[-bsize[X]/2, drill_table[2][Y]+clear ,bsize[Z]/2], [-1,-1,0], 0],
    2*(bsize[Z]-screw_lh) 
  ],

  //-- Beveling the lower-left screw cutout (2) 
  [ [[drill_table[2][X]+clear, -bsize[Y]/2 ,bsize[Z]/2], [0 ,0 ,1], 0],
    [[drill_table[2][X]+clear, -bsize[Y]/2 ,bsize[Z]/2], [-1,-1,0], 0],
    2*(bsize[Z]-screw_lh) 
  ], 

  //-- Beveling the Upper-right screw cutout (1) 
  [ [[bsize[X]/2, drill_table[0][Y]-clear ,bsize[Z]/2], [0 ,0 ,1], 0],
    [[bsize[X]/2, drill_table[0][Y]-clear ,bsize[Z]/2], [1,1,0], 0],
    2*(bsize[Z]-screw_lh) 
  ],

  //-- Beveling the Upper-right screw cutout (2) 
  [ [[drill_table[0][X]-clear, bsize[Y]/2 ,bsize[Z]/2], [0 ,0 ,1], 0],
    [[drill_table[0][X]-clear, bsize[Y]/2 ,bsize[Z]/2], [1,1,0], 0],
    2*(bsize[Z]-screw_lh) 
  ],

   //-- Beveling the lower-right screw cutout (1) 
  [ [[bsize[X]/2, drill_table[3][Y]+clear ,bsize[Z]/2], [0 ,0 ,1], 0],
    [[bsize[X]/2, drill_table[3][Y]+clear ,bsize[Z]/2], [1,-1,0], 0],
    2*(bsize[Z]-screw_lh) 
  ],

  //-- Beveling the lower-right screw cutout (2) 
  [ [[drill_table[3][X]-clear, -bsize[Y]/2 ,bsize[Z]/2], [0 ,0 ,1], 0],
    [[drill_table[3][X]-clear, -bsize[Y]/2 ,bsize[Z]/2], [1,-1,0], 0],
    2*(bsize[Z]-screw_lh) 
  ], 

];

//----------------------------------
//--  Fake shaft
//----------------------------------
//-- Define the connector pair
fs_con_pair = [
  [ [fake_shaft_xpos, 0, bsize[Z]/2],[0,0,1], 0],
  [[0,0,-fake_shaft_len/2],[0,0,1],0]
];

//-------------------------------
//--  DATA for the servo ears
//--------------------------------
//-- Calculate the ears position
ears_pos = [-ears_size[X]/2 - bsize[X]/2,0, ears_size[Z]/2 - bsize[Z]/2];

//-- Connector pais for beveling the servo ears
ear_conn_pair1 = [
    [[-ears_size[X]/2, ears_size[Y]/2, 0], [0,0,1],0],
    [[-ears_size[X]/2, ears_size[Y]/2, 0], [-1,1,0], 0],
];

ear_conn_pair2 = [
    [[-ears_size[X]/2, -ears_size[Y]/2, 0], [0,0,1],0],
    [[-ears_size[X]/2, -ears_size[Y]/2, 0], [-1,-1,0], 0],
];

module servo_ear()
{

  difference() {
    translate([ear_pen/2,0,0])  //-- ear_pen
      cube([ears_size[X]+ear_pen, ears_size[Y], ears_size[Z]], center = true );

    //-- Upper drill
    translate([ears_size[X]/2 - ear_drill_pos[X], ear_drill_pos[Y],0])
      cylinder(r=ears_drill/2, h = ears_size[Z]+extra, center = true);

    //-- Lower drill
    translate([ears_size[X]/2 - ear_drill_pos[X], -ear_drill_pos[Y],0])
      cylinder(r=ears_drill/2, h = ears_size[Z]+extra, center = true);
      
    //-- Bevel the left corners
    bevel(ear_conn_pair1[0], ear_conn_pair1[1], ears_size[Z]+extra, cr = bevel_cr);
    bevel(ear_conn_pair2[0], ear_conn_pair2[1], ears_size[Z]+extra, cr = bevel_cr);
  }
  
}

//----------------------------------------------------------------
//---         CODE!!
//----------------------------------------------------------------
//-- No numbers. Just the actions for creating the base
//-- It is very easy to remove parts: comment them out!
//-----------------------------------------------------------------


difference() {

  //-- Main Base
  bcube(bsize,cr=b_cr, cres=b_cres);
  
  //-- Screw cutouts
  for (con_pair = screw_connector_table) {
    attach(con_pair[0], con_pair[1])
      bcube(screw_cutout_size, cr=ddiam/2, cres=5);
  }
  

  //-- Drills
  for (pos  = drill_table) {
    translate(pos)
      cylinder(r=ddiam/2, h=bsize[Z]+extra, center=true, $fn=10);
  }

  //-- Electronics cutouts
  for (i=[0:1]) {
    attach(elec_connector_table[i][0], elec_connector_table[i][1])
      bcube(elec_co_size[i] , cr=elec_co_cr, cres = elec_co_cres);
  }

  //-- Cable hole
  attach(ch_conn_pair[0],ch_conn_pair[1])
    bcube(ch_size, cr=ch_cr, cres=ch_cres);

  //-- Beveling the edges
  for (tuple = bevel_table)
    bevel( tuple[0], tuple[1], l=tuple[2], cr=bevel_cr);

}


//-- Fake shaft

if (fake_shaft) {
  attach(fs_con_pair[0], fs_con_pair[1])
    cylinder(r=fake_shaft_diam/2, h=fake_shaft_len,center=true, $fn=50);
}



//--- Servo ears
if (servo_ears) {

  //-- Left ear. It has a cutout for making room for the wire
  translate(ears_pos) {
    difference() {
      servo_ear();
      translate([ears_size[X]/2,0,0])
        bcube(ch_size, cr=ch_cr, cres=ch_cres);
    }  
  }

  //-- Right ear
  translate([-ears_pos[X],0,ears_pos[Z]])
  mirror([1,0,0])
  servo_ear();
}
